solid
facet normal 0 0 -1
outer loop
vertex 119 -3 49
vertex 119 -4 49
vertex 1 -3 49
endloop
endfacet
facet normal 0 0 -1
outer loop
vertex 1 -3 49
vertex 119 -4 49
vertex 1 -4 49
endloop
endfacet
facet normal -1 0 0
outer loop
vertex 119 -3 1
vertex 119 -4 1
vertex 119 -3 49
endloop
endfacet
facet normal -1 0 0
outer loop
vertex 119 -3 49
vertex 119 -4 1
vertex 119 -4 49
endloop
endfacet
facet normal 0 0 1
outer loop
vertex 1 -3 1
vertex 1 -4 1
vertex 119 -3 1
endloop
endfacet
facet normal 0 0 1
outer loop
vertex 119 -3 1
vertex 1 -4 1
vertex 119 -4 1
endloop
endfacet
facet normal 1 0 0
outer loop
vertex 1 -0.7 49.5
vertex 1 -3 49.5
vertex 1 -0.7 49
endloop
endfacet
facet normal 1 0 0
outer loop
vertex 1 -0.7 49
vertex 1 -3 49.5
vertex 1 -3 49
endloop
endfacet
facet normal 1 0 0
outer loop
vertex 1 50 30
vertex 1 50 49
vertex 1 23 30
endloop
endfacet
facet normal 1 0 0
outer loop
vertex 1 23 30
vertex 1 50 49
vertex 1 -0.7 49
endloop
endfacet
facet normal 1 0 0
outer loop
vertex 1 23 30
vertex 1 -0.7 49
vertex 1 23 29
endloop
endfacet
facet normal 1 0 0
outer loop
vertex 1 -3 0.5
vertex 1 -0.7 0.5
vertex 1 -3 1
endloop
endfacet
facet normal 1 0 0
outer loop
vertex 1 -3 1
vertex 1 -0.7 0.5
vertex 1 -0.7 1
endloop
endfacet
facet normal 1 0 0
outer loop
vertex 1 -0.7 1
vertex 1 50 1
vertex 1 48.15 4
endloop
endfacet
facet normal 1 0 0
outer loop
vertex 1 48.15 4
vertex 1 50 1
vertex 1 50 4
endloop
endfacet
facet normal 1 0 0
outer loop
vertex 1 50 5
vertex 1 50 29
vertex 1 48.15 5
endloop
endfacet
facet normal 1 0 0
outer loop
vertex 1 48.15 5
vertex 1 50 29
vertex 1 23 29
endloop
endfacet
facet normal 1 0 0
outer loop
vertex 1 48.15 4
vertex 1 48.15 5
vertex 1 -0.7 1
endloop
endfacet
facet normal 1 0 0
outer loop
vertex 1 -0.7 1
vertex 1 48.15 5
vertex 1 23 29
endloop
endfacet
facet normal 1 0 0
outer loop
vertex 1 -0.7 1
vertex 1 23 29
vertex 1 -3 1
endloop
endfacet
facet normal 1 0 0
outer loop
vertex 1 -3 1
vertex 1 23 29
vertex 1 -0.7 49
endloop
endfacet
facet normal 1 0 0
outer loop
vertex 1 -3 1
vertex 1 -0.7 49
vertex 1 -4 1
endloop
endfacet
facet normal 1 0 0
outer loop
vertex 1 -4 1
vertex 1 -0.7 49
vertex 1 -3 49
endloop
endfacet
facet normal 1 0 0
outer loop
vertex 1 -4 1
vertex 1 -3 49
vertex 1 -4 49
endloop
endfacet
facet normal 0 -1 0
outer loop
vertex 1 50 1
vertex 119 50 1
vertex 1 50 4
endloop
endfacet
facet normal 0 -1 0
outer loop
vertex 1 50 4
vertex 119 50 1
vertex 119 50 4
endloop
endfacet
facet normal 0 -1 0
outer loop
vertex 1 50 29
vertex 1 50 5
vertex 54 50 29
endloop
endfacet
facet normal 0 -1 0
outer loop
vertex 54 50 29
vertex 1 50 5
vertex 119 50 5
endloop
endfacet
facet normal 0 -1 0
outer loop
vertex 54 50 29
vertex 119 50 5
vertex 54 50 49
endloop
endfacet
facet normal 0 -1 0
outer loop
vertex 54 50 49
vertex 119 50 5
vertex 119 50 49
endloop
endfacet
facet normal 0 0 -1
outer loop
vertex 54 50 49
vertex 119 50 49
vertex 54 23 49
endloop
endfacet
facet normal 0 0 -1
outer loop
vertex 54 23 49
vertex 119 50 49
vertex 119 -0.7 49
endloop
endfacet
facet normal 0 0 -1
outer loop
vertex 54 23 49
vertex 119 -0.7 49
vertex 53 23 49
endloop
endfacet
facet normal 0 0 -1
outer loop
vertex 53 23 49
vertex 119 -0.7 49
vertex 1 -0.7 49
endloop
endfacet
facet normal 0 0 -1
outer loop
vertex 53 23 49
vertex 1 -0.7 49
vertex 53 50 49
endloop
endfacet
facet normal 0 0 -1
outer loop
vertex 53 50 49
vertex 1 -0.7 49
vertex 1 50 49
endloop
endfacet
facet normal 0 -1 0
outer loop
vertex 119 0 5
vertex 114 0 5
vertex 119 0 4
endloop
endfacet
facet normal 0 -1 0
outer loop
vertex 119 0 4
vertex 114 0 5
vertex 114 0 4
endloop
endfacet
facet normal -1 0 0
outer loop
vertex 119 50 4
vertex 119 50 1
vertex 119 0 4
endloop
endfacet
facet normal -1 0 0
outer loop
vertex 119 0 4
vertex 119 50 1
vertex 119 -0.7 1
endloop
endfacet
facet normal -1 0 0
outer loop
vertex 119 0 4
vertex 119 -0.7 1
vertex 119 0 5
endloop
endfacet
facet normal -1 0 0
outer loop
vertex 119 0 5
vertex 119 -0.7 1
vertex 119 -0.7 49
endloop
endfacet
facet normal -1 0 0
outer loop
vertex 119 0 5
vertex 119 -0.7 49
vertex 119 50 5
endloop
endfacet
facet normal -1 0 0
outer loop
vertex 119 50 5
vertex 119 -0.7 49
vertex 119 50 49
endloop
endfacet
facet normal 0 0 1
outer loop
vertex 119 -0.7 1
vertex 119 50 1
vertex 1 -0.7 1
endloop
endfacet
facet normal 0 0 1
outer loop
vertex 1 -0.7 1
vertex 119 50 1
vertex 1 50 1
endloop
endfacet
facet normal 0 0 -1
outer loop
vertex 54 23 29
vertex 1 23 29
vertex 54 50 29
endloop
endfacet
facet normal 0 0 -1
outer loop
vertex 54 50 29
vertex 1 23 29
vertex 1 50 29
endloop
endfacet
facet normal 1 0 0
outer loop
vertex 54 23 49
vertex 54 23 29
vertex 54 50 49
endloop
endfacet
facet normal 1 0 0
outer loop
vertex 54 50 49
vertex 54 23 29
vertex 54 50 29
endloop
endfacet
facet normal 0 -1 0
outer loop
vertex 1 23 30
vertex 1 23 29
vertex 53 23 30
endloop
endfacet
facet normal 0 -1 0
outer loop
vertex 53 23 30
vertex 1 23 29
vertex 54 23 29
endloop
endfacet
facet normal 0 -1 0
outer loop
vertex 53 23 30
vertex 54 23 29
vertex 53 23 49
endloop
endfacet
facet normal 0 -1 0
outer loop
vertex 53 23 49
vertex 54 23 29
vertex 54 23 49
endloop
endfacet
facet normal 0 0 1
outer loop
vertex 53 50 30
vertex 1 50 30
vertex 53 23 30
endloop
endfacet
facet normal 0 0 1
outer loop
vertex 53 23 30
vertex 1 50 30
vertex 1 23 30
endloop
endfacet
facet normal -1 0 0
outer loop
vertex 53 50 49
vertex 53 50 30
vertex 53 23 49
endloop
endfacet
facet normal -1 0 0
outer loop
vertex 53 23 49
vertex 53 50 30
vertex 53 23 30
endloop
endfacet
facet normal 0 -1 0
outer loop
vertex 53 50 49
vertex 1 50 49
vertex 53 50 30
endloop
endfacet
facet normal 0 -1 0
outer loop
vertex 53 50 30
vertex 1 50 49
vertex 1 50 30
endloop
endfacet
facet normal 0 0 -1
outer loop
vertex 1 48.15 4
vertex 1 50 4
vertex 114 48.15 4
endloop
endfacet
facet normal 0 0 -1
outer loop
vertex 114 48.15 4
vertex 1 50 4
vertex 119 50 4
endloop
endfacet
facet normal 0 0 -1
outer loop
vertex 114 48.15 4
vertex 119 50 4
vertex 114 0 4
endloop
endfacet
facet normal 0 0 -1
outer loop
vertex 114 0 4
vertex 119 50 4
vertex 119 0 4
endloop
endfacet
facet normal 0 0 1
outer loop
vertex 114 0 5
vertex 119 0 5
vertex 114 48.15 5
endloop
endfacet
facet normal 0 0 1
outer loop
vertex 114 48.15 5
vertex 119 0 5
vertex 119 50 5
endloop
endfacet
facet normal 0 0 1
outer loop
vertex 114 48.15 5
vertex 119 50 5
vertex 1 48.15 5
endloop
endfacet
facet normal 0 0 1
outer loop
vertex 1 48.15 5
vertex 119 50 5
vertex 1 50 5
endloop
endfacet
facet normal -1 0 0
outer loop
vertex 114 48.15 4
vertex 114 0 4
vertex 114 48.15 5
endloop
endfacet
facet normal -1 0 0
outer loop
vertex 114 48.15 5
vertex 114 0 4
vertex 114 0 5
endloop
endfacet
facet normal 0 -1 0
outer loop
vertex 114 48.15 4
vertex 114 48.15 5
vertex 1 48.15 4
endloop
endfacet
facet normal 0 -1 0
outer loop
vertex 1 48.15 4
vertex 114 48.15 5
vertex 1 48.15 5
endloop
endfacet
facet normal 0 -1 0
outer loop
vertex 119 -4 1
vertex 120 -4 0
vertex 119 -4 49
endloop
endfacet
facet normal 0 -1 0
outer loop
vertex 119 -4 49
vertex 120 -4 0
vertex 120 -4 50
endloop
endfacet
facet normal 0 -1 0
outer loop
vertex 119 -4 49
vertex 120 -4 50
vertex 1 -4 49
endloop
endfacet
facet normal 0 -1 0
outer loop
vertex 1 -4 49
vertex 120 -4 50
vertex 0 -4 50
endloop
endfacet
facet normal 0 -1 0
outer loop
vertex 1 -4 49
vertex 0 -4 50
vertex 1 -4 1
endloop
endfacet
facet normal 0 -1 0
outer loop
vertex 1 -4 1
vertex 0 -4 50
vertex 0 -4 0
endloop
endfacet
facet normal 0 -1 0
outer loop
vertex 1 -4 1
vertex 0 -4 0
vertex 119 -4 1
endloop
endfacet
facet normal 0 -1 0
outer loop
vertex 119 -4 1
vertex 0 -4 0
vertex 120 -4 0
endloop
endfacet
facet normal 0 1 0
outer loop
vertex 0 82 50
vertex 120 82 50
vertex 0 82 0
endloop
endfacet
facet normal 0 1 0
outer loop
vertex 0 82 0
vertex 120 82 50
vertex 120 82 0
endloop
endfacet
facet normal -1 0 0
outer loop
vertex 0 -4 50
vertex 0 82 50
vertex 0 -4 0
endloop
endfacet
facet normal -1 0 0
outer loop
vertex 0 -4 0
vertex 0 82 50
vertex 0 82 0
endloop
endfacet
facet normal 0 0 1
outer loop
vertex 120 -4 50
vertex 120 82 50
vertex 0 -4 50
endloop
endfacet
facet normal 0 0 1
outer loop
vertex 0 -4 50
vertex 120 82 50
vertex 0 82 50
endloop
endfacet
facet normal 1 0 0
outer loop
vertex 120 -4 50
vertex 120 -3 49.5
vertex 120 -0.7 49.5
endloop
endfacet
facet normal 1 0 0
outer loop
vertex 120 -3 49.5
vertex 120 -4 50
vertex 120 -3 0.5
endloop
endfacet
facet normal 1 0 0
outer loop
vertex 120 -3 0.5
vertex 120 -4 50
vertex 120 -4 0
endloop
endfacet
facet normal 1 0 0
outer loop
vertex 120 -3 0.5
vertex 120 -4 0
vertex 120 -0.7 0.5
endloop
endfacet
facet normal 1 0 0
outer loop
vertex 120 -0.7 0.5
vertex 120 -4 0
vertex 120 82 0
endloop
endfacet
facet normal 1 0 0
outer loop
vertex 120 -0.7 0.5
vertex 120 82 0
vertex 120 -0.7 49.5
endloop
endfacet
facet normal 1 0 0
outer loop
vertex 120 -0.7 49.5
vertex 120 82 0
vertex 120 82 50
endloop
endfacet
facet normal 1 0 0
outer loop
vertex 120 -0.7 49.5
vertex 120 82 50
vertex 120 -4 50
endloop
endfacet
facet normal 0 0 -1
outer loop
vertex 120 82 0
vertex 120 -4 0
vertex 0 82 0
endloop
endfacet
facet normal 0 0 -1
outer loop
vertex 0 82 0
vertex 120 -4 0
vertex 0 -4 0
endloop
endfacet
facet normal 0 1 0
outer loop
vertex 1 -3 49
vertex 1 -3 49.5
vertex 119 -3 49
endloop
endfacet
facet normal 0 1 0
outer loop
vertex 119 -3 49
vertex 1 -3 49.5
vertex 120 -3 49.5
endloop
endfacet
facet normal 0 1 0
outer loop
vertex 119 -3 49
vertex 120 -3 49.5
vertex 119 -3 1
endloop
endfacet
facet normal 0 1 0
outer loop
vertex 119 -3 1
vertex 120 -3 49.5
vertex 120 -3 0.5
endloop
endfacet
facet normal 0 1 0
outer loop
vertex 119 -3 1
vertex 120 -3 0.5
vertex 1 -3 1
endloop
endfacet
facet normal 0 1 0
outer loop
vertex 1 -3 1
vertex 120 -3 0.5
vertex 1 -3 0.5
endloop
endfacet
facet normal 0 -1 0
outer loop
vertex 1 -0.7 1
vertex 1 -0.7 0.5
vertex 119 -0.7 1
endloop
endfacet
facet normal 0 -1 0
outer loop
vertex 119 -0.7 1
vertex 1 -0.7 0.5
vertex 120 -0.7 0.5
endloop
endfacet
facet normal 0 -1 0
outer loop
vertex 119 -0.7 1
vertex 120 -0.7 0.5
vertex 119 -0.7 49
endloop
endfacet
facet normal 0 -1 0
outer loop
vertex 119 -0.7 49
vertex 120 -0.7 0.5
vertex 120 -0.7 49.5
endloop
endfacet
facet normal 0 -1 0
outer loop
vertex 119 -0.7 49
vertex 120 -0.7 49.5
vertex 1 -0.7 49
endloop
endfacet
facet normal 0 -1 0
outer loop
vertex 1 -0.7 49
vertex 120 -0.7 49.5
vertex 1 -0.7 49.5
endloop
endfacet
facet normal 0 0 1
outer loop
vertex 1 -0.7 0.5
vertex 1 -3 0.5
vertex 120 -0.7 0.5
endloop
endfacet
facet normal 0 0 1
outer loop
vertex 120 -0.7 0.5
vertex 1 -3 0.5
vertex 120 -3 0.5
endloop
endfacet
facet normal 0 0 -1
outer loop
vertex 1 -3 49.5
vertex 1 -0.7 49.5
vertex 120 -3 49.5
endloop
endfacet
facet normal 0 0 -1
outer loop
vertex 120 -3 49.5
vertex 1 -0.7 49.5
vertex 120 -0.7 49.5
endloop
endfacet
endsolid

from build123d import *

# Parameters (mm, degrees)
SCHIZZO1_W                   = 120
SCHIZZO1_H                   = 82
ESTRUSIONE_ESTRUSIONE4_DEPTH = 50
SCHIZZO6_W                   = 118
SCHIZZO6_H                   = 48
TAGLIO_ESTRUSIONE2_DEPTH     = 50
SCHIZZO7_W                   = 53
SCHIZZO7_H                   = 20
ESTRUSIONE_ESTRUSIONE5_DEPTH = 27
SCHIZZO8_W                   = 52
SCHIZZO8_H                   = 19
TAGLIO_ESTRUSIONE4_DEPTH     = 27
SCHIZZO9_W                   = 5
SCHIZZO9_H                   = 1
ESTRUSIONE_ESTRUSIONE6_DEPTH = 50
SCHIZZO9_3_W                 = 113
SCHIZZO9_3_H                 = 1
ESTRUSIONE_ESTRUSIONE7_DEPTH = 1.85
SCHIZZO11_W                  = 120
SCHIZZO11_H                  = 50
SCHIZZO11_W_2                = 118
SCHIZZO11_H_2                = 48
ESTRUSIONE_ESTRUSIONE8_DEPTH = 4
SCHIZZO13_W                  = 49
SCHIZZO13_H                  = 2.3
TAGLIO_ESTRUSIONE6_DEPTH     = 119


with BuildPart() as part:
    # Schizzo1 → Estrusione-Estrusione4 (new body)
    with BuildSketch(Plane.XY):
        with Locations((60, 41)):
            Rectangle(SCHIZZO1_W, SCHIZZO1_H)
    extrude(amount=ESTRUSIONE_ESTRUSIONE4_DEPTH)

    # Schizzo6 → Taglio-Estrusione2 (cut)
    with BuildSketch(Plane.XZ):
        with Locations((60, 25)):
            Rectangle(SCHIZZO6_W, SCHIZZO6_H)
    extrude(amount=-TAGLIO_ESTRUSIONE2_DEPTH, mode=Mode.SUBTRACT)

    # Schizzo7 → Estrusione-Estrusione5 (add)
    with BuildSketch(Plane.XZ.offset(-50)):
        with Locations((27.5, 39)):
            Rectangle(SCHIZZO7_W, SCHIZZO7_H)
    extrude(amount=ESTRUSIONE_ESTRUSIONE5_DEPTH)

    # Schizzo8 → Taglio-Estrusione4 (cut)
    with BuildSketch(Plane.XZ.offset(-23)):
        with Locations((27, 39.5)):
            Rectangle(SCHIZZO8_W, SCHIZZO8_H)
    extrude(amount=-TAGLIO_ESTRUSIONE4_DEPTH, mode=Mode.SUBTRACT)

    # Schizzo9 → Estrusione-Estrusione6 (add)
    with BuildSketch(Plane(origin=(0, 50, 0), x_dir=(-1, 0, 0), z_dir=(0, -1, 0))):
        with Locations((-116.5, -4.5)):
            Rectangle(SCHIZZO9_W, SCHIZZO9_H)
    extrude(amount=ESTRUSIONE_ESTRUSIONE6_DEPTH)

    # Schizzo9<3> → Estrusione-Estrusione7 (add)
    with BuildSketch(Plane(origin=(0, 50, 0), x_dir=(-1, 0, 0), z_dir=(0, -1, 0))):
        with Locations((-57.5, -4.5)):
            Rectangle(SCHIZZO9_3_W, SCHIZZO9_3_H)
    extrude(amount=ESTRUSIONE_ESTRUSIONE7_DEPTH)

    # Schizzo11 → Estrusione-Estrusione8 (add)
    with BuildSketch(Plane.XZ):
        with Locations((60, 25)):
            Rectangle(SCHIZZO11_W, SCHIZZO11_H)
        with Locations((60, 25)):
            Rectangle(SCHIZZO11_W_2, SCHIZZO11_H_2, mode=Mode.SUBTRACT)
    extrude(amount=ESTRUSIONE_ESTRUSIONE8_DEPTH)

    # Schizzo13 → Taglio-Estrusione6 (cut)
    with BuildSketch(Plane(origin=(120, 0, 0), x_dir=(0, 0, -1), z_dir=(1, 0, 0))):
        with Locations((-25, -1.85)):
            Rectangle(SCHIZZO13_W, SCHIZZO13_H)
    extrude(amount=-TAGLIO_ESTRUSIONE6_DEPTH, mode=Mode.SUBTRACT)


solid = part.part
